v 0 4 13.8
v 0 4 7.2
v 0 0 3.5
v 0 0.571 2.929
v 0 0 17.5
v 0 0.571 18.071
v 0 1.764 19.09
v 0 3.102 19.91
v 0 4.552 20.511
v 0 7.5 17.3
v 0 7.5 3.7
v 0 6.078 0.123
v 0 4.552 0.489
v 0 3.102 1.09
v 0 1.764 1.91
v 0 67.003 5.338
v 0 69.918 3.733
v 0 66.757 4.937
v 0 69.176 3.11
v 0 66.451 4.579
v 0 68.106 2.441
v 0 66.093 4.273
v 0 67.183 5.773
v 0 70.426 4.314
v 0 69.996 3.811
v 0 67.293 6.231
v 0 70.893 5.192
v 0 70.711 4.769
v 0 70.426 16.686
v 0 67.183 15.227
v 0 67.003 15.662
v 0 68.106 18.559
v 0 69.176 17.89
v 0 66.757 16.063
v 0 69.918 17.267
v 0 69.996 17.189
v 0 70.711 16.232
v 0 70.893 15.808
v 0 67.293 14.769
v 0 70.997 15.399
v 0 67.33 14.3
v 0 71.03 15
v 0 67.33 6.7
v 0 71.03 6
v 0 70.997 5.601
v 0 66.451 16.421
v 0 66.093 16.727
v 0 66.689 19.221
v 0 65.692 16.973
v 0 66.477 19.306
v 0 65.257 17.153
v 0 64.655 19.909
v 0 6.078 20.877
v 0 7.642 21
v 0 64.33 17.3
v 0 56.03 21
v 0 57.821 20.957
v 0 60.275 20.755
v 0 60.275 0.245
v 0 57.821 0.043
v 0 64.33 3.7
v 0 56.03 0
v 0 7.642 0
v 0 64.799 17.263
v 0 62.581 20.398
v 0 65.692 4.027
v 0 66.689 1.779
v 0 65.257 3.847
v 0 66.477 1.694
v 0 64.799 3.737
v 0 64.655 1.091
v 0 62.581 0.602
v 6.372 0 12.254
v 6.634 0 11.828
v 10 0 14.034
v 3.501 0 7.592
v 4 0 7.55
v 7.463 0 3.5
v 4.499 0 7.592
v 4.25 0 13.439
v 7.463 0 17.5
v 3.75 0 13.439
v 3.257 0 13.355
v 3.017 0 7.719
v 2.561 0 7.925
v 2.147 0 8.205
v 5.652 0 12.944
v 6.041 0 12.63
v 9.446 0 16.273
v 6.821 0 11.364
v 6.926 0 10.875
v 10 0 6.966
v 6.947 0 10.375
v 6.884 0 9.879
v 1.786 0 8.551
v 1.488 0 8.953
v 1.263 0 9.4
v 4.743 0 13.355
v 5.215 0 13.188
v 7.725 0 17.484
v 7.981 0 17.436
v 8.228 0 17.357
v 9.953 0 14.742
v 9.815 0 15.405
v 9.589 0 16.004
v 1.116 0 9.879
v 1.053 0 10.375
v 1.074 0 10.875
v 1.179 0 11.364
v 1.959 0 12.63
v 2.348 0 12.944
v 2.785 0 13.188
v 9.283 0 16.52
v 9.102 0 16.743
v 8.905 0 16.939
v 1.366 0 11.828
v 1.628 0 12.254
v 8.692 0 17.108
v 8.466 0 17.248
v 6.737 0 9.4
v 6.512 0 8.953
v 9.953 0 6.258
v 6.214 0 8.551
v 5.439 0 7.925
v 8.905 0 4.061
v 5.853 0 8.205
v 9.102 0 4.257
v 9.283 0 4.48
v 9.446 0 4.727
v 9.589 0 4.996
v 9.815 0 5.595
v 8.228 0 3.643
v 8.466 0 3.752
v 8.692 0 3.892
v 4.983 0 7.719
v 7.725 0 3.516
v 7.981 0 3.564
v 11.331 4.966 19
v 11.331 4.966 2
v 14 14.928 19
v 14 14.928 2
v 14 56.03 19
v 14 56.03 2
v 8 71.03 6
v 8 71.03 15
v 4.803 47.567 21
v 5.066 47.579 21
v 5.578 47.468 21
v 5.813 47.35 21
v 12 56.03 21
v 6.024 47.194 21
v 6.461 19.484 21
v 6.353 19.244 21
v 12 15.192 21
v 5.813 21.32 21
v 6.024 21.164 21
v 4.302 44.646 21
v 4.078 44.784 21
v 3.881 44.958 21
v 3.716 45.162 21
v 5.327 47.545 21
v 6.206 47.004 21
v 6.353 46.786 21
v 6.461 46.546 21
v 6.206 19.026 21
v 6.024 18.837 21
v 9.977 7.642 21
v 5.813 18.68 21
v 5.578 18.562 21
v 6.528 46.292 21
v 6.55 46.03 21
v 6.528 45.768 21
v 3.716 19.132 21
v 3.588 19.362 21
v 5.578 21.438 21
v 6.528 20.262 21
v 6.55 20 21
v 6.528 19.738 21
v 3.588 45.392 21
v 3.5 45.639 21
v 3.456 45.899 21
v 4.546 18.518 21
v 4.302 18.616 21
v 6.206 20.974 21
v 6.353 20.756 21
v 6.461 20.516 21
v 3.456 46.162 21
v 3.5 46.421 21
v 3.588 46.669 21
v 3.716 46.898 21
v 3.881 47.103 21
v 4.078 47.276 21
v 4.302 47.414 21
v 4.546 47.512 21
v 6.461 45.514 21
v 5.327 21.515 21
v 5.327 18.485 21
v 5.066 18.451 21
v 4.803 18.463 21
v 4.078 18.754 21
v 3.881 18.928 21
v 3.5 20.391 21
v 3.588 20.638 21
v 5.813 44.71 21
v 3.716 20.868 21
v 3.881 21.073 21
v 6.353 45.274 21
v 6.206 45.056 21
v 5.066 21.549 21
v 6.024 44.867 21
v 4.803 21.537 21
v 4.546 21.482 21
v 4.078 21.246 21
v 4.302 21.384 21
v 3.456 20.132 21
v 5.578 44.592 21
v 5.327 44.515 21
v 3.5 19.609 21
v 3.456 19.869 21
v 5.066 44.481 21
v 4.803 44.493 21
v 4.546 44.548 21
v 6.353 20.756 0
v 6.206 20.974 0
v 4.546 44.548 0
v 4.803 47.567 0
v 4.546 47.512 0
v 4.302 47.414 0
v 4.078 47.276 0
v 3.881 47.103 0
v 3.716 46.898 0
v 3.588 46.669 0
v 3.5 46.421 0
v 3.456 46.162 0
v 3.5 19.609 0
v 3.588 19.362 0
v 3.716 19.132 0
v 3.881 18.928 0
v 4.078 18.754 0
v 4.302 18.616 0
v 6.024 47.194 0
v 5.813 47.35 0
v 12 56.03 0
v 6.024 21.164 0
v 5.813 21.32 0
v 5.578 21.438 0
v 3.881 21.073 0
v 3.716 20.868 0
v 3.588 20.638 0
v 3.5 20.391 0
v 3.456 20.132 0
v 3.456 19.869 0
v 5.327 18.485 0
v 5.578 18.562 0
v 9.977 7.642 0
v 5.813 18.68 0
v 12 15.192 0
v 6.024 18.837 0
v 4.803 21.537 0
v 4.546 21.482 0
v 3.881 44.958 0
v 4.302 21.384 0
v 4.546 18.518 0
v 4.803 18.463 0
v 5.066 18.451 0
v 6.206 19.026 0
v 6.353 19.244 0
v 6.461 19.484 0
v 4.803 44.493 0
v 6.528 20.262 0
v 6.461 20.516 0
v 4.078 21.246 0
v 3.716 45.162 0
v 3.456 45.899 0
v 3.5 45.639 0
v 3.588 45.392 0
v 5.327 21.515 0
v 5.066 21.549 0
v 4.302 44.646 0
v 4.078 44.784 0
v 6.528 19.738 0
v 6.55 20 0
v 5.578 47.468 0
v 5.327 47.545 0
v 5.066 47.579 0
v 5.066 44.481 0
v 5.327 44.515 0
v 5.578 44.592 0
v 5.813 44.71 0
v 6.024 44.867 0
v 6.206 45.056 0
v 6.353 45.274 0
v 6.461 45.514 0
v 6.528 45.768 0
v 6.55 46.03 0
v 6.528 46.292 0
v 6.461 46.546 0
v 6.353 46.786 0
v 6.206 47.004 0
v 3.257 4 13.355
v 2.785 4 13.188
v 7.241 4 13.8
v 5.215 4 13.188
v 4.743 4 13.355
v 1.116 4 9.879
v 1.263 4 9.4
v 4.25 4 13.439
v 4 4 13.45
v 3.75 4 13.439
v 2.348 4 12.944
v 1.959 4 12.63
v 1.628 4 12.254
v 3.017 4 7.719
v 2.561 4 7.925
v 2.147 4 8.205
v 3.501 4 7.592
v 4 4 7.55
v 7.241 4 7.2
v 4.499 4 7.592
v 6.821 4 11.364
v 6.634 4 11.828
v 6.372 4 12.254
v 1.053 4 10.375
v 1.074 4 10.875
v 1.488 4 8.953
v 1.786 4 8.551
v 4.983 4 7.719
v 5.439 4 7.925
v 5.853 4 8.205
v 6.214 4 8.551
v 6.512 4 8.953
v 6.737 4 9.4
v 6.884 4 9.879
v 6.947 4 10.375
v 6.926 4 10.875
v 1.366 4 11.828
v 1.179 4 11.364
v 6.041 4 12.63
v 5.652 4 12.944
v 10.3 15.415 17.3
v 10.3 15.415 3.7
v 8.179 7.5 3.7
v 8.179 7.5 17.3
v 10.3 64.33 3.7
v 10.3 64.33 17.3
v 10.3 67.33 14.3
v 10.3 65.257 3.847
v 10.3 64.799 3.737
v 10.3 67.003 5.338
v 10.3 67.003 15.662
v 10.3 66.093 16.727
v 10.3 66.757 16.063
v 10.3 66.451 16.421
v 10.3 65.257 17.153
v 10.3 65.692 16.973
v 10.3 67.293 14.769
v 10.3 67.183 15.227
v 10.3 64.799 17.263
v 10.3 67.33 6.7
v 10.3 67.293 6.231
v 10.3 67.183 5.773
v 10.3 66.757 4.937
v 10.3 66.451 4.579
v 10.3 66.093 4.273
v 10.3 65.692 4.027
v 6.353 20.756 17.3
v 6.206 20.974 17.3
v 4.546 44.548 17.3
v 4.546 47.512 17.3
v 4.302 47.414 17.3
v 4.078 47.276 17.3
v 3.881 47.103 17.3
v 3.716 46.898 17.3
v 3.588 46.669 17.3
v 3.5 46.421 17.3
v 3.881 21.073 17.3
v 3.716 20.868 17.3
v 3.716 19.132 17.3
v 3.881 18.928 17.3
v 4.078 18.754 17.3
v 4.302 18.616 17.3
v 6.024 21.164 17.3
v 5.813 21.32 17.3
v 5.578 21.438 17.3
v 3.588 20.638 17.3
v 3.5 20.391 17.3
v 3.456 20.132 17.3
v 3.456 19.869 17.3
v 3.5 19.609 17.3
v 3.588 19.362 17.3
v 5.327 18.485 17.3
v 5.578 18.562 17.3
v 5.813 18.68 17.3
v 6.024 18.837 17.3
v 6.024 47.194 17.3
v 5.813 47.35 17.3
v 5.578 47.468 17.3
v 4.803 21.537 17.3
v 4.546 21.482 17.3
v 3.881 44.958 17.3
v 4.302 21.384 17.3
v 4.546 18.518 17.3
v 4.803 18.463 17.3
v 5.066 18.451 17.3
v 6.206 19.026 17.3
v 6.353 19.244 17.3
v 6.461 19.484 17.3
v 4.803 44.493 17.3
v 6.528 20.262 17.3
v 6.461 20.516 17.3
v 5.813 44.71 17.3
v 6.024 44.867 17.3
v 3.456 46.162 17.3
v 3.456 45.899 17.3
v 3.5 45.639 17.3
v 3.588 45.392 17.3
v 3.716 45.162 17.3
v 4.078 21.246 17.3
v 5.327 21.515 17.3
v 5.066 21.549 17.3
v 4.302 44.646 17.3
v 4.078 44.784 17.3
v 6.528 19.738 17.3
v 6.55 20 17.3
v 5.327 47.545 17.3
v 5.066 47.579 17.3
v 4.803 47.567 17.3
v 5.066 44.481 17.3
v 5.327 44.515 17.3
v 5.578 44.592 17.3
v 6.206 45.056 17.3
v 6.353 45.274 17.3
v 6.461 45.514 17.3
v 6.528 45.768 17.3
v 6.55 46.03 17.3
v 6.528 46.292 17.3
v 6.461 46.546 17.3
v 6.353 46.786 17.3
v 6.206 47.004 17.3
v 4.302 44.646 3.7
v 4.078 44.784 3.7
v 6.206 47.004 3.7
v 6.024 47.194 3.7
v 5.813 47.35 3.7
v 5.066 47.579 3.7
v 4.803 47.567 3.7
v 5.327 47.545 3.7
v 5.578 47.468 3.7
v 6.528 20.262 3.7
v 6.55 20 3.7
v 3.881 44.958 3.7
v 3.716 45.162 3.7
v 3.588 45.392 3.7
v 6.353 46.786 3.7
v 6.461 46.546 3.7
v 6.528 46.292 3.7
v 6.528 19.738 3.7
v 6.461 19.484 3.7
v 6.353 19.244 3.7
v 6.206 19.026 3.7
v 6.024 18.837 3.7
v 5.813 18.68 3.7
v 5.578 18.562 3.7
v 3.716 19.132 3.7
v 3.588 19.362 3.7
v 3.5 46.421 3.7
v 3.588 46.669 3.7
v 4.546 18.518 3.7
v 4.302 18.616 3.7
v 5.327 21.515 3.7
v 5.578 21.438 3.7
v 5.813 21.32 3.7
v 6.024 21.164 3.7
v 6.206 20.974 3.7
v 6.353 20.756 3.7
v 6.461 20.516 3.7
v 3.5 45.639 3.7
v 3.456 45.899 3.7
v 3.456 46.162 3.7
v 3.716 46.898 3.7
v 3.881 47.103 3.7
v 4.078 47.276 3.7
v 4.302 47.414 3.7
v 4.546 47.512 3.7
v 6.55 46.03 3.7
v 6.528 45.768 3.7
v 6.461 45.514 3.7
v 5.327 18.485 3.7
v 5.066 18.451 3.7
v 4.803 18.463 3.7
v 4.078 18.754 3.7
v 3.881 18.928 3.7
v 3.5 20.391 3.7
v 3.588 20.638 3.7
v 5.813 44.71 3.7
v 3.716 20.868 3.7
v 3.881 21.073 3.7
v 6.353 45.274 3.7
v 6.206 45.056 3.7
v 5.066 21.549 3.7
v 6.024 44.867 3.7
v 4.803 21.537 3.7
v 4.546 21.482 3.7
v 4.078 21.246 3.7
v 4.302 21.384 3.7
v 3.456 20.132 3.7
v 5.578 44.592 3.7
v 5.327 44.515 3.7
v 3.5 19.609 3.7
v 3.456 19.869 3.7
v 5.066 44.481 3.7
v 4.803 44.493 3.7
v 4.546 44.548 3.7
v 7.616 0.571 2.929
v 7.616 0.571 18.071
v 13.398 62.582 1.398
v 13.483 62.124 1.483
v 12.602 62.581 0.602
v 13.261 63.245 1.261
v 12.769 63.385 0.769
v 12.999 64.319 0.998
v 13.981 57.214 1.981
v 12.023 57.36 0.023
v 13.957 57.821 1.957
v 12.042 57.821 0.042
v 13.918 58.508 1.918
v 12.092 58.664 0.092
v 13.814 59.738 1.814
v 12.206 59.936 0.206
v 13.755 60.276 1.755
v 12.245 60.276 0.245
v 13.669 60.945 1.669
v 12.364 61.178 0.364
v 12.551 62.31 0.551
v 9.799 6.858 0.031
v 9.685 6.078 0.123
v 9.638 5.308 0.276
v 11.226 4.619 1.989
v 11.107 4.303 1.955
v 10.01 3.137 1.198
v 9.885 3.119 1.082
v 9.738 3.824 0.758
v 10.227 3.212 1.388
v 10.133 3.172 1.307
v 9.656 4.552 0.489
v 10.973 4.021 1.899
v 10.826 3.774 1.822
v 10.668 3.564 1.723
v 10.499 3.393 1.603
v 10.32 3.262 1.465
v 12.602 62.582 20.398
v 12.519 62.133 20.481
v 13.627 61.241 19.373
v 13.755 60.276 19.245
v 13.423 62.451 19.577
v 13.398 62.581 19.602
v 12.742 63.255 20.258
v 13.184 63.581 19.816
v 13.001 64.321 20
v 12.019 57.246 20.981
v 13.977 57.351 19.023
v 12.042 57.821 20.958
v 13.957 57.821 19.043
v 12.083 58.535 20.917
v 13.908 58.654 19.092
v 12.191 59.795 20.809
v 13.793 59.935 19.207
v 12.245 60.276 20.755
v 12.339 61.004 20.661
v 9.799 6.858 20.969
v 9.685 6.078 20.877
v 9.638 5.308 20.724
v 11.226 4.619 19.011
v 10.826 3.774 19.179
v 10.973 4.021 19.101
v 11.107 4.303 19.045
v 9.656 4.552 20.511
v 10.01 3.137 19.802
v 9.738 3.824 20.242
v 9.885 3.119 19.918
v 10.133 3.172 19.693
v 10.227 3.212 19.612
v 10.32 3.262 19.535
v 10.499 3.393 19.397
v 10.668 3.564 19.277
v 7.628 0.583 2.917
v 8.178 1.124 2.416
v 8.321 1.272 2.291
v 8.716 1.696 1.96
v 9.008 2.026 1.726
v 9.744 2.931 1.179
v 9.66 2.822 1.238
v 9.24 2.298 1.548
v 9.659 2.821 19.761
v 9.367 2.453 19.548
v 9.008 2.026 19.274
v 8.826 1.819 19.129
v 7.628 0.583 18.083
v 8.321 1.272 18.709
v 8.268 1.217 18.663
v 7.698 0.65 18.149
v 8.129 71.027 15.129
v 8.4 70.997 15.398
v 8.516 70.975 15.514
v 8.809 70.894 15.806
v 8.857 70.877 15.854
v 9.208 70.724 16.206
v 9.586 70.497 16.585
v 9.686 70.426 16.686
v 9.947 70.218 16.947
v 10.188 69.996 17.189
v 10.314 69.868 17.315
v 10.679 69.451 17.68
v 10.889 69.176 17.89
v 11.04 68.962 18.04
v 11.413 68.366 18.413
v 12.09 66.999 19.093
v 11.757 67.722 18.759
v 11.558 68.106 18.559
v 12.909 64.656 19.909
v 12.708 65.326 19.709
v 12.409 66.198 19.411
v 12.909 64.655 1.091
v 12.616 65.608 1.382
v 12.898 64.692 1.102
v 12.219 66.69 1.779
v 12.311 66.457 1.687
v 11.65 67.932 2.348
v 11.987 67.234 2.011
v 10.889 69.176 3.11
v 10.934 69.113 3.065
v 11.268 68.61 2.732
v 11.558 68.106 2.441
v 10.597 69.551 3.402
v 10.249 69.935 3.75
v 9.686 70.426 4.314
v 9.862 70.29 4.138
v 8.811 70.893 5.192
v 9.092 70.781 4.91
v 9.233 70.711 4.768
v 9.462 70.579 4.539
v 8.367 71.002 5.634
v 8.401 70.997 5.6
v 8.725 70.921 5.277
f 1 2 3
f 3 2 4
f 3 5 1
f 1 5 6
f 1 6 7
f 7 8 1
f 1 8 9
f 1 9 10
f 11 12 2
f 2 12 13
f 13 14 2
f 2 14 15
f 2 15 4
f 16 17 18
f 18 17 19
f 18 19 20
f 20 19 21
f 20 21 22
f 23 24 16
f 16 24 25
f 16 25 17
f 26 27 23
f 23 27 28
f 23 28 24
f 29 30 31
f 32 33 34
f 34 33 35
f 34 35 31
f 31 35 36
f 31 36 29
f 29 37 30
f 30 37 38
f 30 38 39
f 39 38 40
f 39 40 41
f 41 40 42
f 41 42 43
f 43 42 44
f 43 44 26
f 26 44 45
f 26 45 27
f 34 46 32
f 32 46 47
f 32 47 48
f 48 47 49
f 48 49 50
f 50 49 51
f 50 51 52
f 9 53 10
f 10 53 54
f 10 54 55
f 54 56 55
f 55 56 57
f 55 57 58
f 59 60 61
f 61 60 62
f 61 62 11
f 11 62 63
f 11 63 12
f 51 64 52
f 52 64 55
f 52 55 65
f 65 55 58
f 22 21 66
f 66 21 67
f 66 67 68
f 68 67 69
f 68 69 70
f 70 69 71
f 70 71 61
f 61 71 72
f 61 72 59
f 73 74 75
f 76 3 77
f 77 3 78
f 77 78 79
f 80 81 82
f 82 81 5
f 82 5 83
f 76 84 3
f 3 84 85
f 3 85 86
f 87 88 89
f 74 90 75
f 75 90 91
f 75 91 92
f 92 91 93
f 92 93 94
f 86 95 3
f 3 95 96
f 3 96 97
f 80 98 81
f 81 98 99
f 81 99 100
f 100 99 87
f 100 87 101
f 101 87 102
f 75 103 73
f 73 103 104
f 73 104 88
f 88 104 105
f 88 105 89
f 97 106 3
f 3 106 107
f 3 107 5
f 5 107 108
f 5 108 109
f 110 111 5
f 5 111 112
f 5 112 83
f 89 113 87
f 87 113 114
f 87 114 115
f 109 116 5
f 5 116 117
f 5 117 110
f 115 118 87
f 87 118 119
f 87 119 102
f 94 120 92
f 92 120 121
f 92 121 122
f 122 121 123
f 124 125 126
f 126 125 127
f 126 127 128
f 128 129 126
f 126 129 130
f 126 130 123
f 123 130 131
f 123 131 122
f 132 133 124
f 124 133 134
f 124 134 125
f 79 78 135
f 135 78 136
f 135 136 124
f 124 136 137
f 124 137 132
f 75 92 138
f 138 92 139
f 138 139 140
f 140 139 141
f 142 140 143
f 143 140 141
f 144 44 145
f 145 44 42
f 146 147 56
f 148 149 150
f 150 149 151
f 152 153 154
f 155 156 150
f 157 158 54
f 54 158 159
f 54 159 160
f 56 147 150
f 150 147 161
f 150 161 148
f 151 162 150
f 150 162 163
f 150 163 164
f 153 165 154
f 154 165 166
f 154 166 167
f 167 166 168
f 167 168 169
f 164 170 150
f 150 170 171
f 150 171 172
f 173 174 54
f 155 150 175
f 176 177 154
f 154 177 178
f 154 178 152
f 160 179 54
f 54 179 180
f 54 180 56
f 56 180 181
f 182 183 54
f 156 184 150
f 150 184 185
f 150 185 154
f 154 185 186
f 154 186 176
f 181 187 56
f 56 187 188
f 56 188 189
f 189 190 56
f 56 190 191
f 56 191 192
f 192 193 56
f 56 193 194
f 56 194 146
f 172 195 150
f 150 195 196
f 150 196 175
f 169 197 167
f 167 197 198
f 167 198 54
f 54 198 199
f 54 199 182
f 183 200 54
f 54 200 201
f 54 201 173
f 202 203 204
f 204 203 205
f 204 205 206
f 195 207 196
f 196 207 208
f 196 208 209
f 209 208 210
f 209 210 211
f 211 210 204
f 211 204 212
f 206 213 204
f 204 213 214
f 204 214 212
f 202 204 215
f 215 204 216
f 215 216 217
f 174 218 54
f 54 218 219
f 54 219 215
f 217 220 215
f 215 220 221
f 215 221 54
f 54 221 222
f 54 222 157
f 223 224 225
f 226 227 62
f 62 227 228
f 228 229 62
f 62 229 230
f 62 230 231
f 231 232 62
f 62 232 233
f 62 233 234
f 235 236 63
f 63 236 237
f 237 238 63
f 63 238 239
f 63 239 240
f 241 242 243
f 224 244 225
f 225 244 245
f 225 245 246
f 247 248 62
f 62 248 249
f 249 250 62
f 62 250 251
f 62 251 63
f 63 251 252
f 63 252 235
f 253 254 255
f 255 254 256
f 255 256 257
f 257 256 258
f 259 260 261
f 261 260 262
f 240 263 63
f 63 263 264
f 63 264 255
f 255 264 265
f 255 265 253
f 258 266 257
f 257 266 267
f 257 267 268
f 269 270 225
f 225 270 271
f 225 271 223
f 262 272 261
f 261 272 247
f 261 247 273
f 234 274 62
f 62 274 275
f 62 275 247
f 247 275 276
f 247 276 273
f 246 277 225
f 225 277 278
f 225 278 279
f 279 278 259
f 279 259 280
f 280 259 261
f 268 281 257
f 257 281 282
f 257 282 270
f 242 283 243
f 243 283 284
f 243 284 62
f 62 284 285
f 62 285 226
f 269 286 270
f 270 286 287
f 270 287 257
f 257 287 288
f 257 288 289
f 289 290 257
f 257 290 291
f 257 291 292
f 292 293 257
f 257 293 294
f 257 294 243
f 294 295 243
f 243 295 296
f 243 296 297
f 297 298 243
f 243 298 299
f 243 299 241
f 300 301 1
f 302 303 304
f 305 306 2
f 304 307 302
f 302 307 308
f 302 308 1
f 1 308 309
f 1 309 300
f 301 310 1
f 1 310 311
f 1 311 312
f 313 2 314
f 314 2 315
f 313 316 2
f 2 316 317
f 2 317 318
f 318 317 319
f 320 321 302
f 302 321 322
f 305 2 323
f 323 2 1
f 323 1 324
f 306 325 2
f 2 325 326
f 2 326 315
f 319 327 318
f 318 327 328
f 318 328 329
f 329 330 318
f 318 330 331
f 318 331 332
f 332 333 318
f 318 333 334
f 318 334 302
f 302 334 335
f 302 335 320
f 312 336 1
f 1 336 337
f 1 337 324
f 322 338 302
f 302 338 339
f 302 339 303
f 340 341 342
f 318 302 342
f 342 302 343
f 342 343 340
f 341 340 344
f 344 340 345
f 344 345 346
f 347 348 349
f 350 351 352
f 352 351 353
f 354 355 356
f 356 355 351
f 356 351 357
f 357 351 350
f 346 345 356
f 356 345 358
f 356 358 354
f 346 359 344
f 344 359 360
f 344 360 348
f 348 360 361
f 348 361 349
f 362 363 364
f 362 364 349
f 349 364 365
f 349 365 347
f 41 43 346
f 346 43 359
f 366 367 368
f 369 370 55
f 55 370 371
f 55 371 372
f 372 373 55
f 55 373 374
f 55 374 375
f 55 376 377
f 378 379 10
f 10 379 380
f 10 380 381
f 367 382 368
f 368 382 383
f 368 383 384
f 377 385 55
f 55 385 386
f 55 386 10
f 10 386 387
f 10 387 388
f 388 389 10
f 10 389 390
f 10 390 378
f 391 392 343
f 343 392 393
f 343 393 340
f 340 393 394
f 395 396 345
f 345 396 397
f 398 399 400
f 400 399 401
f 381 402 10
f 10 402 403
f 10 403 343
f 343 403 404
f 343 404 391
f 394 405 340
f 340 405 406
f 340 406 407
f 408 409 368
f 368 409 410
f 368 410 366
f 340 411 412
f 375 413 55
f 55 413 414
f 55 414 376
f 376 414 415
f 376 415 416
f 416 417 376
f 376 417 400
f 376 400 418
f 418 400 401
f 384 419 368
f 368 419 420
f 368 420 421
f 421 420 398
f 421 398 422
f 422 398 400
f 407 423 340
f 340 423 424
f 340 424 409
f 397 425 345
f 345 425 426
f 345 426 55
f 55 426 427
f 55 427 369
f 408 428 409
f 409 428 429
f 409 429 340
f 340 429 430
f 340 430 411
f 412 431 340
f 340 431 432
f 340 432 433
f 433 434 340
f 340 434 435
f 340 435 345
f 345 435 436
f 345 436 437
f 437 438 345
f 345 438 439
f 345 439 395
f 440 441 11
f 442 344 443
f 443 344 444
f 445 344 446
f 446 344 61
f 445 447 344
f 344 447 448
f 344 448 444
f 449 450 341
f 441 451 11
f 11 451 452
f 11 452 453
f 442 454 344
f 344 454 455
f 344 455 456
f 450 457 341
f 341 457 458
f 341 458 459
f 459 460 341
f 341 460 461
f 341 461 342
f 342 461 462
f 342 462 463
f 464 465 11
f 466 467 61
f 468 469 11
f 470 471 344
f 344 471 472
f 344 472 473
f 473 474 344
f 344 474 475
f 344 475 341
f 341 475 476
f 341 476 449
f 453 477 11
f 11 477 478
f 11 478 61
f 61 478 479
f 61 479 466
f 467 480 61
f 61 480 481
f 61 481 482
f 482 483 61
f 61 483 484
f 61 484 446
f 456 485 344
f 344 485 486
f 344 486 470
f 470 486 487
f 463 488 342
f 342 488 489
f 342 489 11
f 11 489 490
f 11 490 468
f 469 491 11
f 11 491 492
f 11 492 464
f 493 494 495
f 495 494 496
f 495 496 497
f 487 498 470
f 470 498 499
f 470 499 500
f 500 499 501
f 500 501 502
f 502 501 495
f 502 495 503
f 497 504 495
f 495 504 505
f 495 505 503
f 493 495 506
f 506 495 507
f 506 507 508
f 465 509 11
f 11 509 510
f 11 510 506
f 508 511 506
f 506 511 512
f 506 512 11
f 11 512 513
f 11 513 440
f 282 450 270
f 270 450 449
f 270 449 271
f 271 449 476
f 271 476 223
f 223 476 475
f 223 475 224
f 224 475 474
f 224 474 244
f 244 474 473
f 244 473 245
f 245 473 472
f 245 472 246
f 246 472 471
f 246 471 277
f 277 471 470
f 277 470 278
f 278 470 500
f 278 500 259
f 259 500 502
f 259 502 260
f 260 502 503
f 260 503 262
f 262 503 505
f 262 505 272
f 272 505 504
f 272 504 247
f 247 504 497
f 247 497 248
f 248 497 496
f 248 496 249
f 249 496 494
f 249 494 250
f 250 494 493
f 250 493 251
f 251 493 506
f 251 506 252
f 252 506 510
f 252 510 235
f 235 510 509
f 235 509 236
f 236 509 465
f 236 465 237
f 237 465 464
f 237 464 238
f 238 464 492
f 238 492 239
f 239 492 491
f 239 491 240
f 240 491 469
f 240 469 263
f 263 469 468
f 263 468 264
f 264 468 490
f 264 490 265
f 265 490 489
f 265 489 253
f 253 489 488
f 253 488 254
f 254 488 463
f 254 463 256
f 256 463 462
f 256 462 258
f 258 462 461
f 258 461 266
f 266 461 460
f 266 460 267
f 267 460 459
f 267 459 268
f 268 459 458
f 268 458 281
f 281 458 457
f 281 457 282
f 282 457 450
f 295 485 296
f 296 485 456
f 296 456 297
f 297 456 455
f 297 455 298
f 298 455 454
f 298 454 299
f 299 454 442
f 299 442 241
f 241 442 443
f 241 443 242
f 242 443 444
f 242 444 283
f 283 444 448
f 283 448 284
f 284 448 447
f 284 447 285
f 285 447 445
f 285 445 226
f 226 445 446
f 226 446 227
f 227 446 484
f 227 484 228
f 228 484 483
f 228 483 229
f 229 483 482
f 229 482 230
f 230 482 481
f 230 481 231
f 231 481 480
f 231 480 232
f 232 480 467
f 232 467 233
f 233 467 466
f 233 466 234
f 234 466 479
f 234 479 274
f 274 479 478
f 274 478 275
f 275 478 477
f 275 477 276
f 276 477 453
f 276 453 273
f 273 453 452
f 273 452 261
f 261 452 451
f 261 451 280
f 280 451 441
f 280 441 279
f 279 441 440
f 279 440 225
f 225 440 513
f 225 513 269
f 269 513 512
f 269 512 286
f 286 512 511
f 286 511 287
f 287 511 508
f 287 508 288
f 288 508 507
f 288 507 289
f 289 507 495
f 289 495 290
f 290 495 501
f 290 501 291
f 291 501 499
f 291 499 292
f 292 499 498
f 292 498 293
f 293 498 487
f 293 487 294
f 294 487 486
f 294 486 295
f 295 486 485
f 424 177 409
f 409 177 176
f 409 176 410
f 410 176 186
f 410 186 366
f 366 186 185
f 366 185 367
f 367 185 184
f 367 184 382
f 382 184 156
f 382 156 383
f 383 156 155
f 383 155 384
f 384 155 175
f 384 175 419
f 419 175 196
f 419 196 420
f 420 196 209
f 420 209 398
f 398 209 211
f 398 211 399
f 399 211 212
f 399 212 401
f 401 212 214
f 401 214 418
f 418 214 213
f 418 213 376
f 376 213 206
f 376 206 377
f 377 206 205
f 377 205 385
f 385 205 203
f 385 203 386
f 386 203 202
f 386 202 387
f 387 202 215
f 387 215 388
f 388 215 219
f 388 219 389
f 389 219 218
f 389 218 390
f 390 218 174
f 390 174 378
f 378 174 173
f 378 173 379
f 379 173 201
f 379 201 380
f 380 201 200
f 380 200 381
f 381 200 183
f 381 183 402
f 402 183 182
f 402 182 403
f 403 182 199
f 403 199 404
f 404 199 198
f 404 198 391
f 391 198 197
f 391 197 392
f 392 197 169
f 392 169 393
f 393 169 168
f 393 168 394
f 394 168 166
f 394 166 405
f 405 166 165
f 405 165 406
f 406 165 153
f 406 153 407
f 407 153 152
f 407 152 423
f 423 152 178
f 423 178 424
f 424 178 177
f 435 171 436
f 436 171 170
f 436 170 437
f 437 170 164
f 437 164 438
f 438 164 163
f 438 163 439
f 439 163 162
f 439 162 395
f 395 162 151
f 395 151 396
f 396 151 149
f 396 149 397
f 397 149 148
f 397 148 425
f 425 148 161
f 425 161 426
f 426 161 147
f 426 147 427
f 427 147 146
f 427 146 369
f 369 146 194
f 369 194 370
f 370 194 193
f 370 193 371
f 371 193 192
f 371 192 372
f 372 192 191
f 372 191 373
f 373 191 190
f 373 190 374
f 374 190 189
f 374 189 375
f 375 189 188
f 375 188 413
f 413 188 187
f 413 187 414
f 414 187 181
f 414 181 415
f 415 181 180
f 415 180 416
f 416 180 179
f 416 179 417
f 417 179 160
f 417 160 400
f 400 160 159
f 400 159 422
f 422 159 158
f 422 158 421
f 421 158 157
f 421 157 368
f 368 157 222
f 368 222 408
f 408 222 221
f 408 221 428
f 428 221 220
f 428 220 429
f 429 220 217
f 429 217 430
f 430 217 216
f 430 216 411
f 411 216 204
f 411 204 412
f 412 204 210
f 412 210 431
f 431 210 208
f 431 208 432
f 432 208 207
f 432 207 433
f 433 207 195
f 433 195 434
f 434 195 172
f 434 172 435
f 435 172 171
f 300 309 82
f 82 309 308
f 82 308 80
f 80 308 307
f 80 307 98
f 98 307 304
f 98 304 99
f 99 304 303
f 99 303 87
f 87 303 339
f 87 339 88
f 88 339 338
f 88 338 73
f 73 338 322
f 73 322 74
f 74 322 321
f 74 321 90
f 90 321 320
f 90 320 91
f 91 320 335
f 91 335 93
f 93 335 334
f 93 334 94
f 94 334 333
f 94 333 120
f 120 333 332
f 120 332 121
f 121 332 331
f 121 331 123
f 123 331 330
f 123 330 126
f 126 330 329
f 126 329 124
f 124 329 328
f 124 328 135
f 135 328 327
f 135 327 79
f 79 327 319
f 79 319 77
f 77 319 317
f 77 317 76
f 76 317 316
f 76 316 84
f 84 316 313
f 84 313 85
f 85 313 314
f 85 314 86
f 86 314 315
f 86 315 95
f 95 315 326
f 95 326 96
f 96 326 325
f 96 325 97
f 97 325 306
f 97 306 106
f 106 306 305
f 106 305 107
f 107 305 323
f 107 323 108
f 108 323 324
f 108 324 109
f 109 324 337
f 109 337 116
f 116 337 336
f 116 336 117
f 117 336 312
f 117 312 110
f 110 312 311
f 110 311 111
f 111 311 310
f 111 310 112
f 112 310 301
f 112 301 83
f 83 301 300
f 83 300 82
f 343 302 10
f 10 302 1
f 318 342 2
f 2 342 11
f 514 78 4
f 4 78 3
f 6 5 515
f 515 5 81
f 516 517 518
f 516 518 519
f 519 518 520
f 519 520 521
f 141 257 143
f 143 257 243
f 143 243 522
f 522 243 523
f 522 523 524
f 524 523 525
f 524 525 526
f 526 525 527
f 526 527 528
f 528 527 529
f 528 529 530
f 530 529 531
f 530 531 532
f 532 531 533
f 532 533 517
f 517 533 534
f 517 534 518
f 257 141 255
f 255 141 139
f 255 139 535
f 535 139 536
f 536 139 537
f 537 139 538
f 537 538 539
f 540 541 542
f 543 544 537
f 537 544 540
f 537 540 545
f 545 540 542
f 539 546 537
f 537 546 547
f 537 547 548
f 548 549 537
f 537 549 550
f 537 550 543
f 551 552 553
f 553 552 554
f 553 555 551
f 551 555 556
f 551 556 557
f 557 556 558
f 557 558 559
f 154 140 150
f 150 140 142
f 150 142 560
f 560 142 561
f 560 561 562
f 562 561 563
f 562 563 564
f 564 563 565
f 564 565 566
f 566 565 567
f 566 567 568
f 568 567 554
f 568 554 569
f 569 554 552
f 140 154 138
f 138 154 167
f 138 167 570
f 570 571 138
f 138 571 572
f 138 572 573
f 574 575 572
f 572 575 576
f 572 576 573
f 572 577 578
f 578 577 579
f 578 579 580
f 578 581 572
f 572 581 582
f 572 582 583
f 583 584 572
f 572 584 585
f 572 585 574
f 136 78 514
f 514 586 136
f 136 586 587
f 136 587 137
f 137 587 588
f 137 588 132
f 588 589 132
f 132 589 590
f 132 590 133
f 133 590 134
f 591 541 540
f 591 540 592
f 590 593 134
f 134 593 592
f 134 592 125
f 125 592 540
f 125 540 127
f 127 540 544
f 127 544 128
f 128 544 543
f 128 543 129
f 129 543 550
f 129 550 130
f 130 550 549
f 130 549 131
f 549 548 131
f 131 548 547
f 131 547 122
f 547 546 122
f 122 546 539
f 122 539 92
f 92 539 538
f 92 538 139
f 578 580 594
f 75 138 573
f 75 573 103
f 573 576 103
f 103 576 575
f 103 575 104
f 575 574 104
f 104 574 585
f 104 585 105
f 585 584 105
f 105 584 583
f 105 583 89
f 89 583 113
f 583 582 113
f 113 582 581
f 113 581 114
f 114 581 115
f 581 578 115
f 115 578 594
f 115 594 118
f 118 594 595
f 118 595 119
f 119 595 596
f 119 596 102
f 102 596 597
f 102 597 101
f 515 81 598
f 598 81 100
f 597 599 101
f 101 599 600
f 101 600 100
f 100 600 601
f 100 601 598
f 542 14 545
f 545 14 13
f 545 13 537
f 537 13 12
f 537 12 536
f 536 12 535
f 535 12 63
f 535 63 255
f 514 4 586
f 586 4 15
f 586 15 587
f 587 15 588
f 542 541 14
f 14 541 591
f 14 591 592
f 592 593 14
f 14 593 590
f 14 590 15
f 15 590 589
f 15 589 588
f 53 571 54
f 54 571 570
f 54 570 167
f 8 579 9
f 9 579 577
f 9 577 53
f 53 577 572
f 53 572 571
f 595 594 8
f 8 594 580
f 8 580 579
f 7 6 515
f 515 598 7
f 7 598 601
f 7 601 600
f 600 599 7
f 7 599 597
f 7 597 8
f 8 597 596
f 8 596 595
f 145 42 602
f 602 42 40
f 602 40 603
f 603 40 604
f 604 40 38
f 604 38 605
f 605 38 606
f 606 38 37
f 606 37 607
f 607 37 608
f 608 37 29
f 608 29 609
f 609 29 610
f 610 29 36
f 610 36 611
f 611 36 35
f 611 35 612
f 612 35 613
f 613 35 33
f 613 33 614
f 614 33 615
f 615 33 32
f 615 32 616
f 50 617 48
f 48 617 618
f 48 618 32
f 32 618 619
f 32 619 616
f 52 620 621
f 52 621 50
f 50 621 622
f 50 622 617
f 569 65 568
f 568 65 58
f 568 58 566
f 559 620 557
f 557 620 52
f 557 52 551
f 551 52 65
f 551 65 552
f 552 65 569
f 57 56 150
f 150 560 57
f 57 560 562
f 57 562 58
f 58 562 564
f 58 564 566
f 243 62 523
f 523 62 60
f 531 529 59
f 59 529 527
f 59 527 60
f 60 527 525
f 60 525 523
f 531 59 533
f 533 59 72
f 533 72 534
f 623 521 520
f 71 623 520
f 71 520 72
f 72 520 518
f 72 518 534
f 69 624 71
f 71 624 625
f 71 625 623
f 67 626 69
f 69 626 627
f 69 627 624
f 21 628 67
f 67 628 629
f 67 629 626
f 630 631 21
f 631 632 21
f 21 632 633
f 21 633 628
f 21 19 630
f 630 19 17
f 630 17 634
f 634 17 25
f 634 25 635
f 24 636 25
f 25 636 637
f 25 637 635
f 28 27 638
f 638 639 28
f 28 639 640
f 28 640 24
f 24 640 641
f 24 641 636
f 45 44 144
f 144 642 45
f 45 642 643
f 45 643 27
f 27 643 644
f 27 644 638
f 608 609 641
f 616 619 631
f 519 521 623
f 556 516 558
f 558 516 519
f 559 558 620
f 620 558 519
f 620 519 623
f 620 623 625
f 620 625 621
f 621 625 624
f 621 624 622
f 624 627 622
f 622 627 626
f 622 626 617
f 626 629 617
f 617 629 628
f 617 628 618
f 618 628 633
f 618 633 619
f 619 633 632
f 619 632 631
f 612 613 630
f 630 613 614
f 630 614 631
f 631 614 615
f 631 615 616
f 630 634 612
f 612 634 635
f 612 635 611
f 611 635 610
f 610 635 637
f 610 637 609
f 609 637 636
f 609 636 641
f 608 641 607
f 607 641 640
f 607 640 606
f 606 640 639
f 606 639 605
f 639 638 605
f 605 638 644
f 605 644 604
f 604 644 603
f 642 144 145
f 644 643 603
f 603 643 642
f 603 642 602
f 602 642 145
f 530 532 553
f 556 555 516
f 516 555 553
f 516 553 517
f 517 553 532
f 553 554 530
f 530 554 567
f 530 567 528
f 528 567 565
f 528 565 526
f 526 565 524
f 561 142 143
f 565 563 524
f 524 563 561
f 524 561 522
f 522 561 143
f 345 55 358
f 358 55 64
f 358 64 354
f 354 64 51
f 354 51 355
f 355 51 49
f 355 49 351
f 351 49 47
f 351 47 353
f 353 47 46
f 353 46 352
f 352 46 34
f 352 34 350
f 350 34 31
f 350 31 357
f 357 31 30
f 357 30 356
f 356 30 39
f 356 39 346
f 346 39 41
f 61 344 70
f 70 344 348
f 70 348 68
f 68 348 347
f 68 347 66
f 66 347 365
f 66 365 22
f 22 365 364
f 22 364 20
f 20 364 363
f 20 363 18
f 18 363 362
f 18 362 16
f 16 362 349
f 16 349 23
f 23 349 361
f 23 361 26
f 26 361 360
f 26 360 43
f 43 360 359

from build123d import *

# Parameters (mm, degrees)
BOSS_EXTRU_1_DEPTH      = 21
COQUE1_START            = 3.7
COQUE1_DEPTH            = 13.6
ESQUISSE2_R             = 1.55
ENL_V_MAT_EXTRU_1_DEPTH = 32.5
ESQUISSE3_R             = 2.95
ENL_V_MAT_EXTRU_2_DEPTH = 10
CHANFREIN4_SIZE         = 3.5
CHANFREIN1_SIZE         = 2
CONG_1_R                = 3
CONG_2_DEPTH            = 11.330684872
CONG_3_SIZE             = 15
CONG_3_SIZE_2           = 6
CONG_4_SIZE             = 15
CONG_4_SIZE_2           = 6
CONG_5_SIZE             = 6
CONG_5_SIZE_2           = 15
CONG_6_R                = 3


with BuildPart() as part:
    # Esquisse1 → Boss.-Extru.1 (new body)
    with BuildSketch(Plane.XY):
        Polygon((0, 0), (10, 0), (14, 14.92820323), (14, 71.03), (0, 71.03), align=None)
    extrude(amount=BOSS_EXTRU_1_DEPTH)

    # Coque1: read off the stored shape, not the designer's step
    # Coque1 outline → Coque1 (cut)
    with BuildSketch(Plane.XY.offset(COQUE1_START)):
        Polygon((0, 4), (7.241274902, 4), (10.3, 15.415317471), (10.3, 67.33), (0, 67.33), align=None)
    extrude(amount=COQUE1_DEPTH, mode=Mode.SUBTRACT)

    # Esquisse2 → Enlèv. mat.-Extru.1 (cut)
    with BuildSketch(Plane.XY.offset(21)):
        with Locations((5, 46.03)):
            Circle(ESQUISSE2_R)
        with Locations((5, 20)):
            Circle(ESQUISSE2_R)
    extrude(amount=-ENL_V_MAT_EXTRU_1_DEPTH, mode=Mode.SUBTRACT)

    # Esquisse3 → Enlèv. mat.-Extru.2 (cut)
    with BuildSketch(Plane.XZ):
        with Locations(Location((4, 10.5, 0), (0, 0, 270))):
            Circle(ESQUISSE3_R)
    extrude(amount=-ENL_V_MAT_EXTRU_2_DEPTH, mode=Mode.SUBTRACT)

    # Chanfrein4
    chanfrein4_edges = [part.edges().sort_by_distance(p)[0] for p in [
        (3.620637451, 4, 3.7),
        (3.620637451, 4, 17.3),
        (5, 0, 0),
        (5, 0, 21),
    ]]
    chamfer(chanfrein4_edges, length=CHANFREIN4_SIZE)

    # Chanfrein1
    chanfrein1_edges = [part.edges().sort_by_distance(p)[0] for p in [
        (14, 42.979101615, 21),
        (14, 42.979101615, 0),
        (12.468911087, 9.214101615, 0),
        (12.468911087, 9.214101615, 21),
    ]]
    chamfer(chanfrein1_edges, length=CHANFREIN1_SIZE)

    # Congé1
    cong_1_edges = [part.edges().sort_by_distance(p)[0] for p in [
        (10.200961894, 0.75, 2.75),
        (10.200961894, 0.75, 18.25),
    ]]
    fillet(cong_1_edges, radius=CONG_1_R)

    # Congé2: read off the stored shape, not the designer's step
    # Congé2 outline → Congé2 (cut)
    with BuildSketch(Plane.YZ):
        with BuildLine():
            Line((3.5, 0), (7.642135624, 0))
            ThreePointArc((7.642135624, 0), (3.8153013, 0.761204675), (0.571067812, 2.928932188))
            Line((0.571067812, 2.928932188), (3.5, 0))
        make_face()
        with BuildLine():
            ThreePointArc((0.571067812, 18.071067812), (3.8153013, 20.238795325), (7.642135624, 21))
            Line((7.642135624, 21), (3.5, 21))
            Line((3.5, 21), (0.571067812, 18.071067812))
        make_face()
    extrude(amount=CONG_2_DEPTH, mode=Mode.SUBTRACT)

    # Congé3
    # a fillet whose section is not a circle: 15, 6 mm, written as the material it takes off along each edge
    with BuildSketch(Plane(origin=(49.5, 71.03, 21), x_dir=(0, -1, 0), z_dir=(-1, 0, 0))) as cong_3_piece_1:
        with BuildLine():
            Bezier((CONG_3_SIZE, 0), (0, 0), (0, -CONG_3_SIZE_2), weights=[1, 0.707106781, 1])
            Line((0, -CONG_3_SIZE_2), (0, 0))
            Line((0, 0), (CONG_3_SIZE, 0))
        make_face()
    extrude(amount=87, mode=Mode.SUBTRACT)

    # Congé4
    # a fillet whose section is not a circle: 15, 6 mm, written as the material it takes off along each edge
    with BuildSketch(Plane(origin=(49.5, 71.03, 0), x_dir=(0, -1, 0), z_dir=(-1, 0, 0))) as cong_4_piece_1:
        with BuildLine():
            Bezier((CONG_4_SIZE, 0), (0, 0), (0, CONG_4_SIZE_2), weights=[1, 0.707106781, 1])
            Line((0, CONG_4_SIZE_2), (0, 0))
            Line((0, 0), (CONG_4_SIZE, 0))
        make_face()
    extrude(amount=87, mode=Mode.SUBTRACT)

    # Congé5
    # a fillet whose section is not a circle: 15, 6 mm, written as the material it takes off along each edge
    with BuildSketch(Plane(origin=(14, 71.03, -31.5), x_dir=(-1, 0, 0), z_dir=(0, 0, 1))) as cong_5_piece_1:
        with BuildLine():
            Bezier((CONG_5_SIZE, 0), (0, 0), (0, CONG_5_SIZE_2), weights=[1, 0.707106781, 1])
            Line((0, CONG_5_SIZE_2), (0, 0))
            Line((0, 0), (CONG_5_SIZE, 0))
        make_face()
    extrude(amount=84, mode=Mode.SUBTRACT)

    # Congé6
    cong_6_edges = [part.edges().sort_by_distance(p)[0] for p in [
        (5.15, 67.33, 3.7),
        (5.15, 67.33, 17.3),
    ]]
    fillet(cong_6_edges, radius=CONG_6_R)


solid = part.part
